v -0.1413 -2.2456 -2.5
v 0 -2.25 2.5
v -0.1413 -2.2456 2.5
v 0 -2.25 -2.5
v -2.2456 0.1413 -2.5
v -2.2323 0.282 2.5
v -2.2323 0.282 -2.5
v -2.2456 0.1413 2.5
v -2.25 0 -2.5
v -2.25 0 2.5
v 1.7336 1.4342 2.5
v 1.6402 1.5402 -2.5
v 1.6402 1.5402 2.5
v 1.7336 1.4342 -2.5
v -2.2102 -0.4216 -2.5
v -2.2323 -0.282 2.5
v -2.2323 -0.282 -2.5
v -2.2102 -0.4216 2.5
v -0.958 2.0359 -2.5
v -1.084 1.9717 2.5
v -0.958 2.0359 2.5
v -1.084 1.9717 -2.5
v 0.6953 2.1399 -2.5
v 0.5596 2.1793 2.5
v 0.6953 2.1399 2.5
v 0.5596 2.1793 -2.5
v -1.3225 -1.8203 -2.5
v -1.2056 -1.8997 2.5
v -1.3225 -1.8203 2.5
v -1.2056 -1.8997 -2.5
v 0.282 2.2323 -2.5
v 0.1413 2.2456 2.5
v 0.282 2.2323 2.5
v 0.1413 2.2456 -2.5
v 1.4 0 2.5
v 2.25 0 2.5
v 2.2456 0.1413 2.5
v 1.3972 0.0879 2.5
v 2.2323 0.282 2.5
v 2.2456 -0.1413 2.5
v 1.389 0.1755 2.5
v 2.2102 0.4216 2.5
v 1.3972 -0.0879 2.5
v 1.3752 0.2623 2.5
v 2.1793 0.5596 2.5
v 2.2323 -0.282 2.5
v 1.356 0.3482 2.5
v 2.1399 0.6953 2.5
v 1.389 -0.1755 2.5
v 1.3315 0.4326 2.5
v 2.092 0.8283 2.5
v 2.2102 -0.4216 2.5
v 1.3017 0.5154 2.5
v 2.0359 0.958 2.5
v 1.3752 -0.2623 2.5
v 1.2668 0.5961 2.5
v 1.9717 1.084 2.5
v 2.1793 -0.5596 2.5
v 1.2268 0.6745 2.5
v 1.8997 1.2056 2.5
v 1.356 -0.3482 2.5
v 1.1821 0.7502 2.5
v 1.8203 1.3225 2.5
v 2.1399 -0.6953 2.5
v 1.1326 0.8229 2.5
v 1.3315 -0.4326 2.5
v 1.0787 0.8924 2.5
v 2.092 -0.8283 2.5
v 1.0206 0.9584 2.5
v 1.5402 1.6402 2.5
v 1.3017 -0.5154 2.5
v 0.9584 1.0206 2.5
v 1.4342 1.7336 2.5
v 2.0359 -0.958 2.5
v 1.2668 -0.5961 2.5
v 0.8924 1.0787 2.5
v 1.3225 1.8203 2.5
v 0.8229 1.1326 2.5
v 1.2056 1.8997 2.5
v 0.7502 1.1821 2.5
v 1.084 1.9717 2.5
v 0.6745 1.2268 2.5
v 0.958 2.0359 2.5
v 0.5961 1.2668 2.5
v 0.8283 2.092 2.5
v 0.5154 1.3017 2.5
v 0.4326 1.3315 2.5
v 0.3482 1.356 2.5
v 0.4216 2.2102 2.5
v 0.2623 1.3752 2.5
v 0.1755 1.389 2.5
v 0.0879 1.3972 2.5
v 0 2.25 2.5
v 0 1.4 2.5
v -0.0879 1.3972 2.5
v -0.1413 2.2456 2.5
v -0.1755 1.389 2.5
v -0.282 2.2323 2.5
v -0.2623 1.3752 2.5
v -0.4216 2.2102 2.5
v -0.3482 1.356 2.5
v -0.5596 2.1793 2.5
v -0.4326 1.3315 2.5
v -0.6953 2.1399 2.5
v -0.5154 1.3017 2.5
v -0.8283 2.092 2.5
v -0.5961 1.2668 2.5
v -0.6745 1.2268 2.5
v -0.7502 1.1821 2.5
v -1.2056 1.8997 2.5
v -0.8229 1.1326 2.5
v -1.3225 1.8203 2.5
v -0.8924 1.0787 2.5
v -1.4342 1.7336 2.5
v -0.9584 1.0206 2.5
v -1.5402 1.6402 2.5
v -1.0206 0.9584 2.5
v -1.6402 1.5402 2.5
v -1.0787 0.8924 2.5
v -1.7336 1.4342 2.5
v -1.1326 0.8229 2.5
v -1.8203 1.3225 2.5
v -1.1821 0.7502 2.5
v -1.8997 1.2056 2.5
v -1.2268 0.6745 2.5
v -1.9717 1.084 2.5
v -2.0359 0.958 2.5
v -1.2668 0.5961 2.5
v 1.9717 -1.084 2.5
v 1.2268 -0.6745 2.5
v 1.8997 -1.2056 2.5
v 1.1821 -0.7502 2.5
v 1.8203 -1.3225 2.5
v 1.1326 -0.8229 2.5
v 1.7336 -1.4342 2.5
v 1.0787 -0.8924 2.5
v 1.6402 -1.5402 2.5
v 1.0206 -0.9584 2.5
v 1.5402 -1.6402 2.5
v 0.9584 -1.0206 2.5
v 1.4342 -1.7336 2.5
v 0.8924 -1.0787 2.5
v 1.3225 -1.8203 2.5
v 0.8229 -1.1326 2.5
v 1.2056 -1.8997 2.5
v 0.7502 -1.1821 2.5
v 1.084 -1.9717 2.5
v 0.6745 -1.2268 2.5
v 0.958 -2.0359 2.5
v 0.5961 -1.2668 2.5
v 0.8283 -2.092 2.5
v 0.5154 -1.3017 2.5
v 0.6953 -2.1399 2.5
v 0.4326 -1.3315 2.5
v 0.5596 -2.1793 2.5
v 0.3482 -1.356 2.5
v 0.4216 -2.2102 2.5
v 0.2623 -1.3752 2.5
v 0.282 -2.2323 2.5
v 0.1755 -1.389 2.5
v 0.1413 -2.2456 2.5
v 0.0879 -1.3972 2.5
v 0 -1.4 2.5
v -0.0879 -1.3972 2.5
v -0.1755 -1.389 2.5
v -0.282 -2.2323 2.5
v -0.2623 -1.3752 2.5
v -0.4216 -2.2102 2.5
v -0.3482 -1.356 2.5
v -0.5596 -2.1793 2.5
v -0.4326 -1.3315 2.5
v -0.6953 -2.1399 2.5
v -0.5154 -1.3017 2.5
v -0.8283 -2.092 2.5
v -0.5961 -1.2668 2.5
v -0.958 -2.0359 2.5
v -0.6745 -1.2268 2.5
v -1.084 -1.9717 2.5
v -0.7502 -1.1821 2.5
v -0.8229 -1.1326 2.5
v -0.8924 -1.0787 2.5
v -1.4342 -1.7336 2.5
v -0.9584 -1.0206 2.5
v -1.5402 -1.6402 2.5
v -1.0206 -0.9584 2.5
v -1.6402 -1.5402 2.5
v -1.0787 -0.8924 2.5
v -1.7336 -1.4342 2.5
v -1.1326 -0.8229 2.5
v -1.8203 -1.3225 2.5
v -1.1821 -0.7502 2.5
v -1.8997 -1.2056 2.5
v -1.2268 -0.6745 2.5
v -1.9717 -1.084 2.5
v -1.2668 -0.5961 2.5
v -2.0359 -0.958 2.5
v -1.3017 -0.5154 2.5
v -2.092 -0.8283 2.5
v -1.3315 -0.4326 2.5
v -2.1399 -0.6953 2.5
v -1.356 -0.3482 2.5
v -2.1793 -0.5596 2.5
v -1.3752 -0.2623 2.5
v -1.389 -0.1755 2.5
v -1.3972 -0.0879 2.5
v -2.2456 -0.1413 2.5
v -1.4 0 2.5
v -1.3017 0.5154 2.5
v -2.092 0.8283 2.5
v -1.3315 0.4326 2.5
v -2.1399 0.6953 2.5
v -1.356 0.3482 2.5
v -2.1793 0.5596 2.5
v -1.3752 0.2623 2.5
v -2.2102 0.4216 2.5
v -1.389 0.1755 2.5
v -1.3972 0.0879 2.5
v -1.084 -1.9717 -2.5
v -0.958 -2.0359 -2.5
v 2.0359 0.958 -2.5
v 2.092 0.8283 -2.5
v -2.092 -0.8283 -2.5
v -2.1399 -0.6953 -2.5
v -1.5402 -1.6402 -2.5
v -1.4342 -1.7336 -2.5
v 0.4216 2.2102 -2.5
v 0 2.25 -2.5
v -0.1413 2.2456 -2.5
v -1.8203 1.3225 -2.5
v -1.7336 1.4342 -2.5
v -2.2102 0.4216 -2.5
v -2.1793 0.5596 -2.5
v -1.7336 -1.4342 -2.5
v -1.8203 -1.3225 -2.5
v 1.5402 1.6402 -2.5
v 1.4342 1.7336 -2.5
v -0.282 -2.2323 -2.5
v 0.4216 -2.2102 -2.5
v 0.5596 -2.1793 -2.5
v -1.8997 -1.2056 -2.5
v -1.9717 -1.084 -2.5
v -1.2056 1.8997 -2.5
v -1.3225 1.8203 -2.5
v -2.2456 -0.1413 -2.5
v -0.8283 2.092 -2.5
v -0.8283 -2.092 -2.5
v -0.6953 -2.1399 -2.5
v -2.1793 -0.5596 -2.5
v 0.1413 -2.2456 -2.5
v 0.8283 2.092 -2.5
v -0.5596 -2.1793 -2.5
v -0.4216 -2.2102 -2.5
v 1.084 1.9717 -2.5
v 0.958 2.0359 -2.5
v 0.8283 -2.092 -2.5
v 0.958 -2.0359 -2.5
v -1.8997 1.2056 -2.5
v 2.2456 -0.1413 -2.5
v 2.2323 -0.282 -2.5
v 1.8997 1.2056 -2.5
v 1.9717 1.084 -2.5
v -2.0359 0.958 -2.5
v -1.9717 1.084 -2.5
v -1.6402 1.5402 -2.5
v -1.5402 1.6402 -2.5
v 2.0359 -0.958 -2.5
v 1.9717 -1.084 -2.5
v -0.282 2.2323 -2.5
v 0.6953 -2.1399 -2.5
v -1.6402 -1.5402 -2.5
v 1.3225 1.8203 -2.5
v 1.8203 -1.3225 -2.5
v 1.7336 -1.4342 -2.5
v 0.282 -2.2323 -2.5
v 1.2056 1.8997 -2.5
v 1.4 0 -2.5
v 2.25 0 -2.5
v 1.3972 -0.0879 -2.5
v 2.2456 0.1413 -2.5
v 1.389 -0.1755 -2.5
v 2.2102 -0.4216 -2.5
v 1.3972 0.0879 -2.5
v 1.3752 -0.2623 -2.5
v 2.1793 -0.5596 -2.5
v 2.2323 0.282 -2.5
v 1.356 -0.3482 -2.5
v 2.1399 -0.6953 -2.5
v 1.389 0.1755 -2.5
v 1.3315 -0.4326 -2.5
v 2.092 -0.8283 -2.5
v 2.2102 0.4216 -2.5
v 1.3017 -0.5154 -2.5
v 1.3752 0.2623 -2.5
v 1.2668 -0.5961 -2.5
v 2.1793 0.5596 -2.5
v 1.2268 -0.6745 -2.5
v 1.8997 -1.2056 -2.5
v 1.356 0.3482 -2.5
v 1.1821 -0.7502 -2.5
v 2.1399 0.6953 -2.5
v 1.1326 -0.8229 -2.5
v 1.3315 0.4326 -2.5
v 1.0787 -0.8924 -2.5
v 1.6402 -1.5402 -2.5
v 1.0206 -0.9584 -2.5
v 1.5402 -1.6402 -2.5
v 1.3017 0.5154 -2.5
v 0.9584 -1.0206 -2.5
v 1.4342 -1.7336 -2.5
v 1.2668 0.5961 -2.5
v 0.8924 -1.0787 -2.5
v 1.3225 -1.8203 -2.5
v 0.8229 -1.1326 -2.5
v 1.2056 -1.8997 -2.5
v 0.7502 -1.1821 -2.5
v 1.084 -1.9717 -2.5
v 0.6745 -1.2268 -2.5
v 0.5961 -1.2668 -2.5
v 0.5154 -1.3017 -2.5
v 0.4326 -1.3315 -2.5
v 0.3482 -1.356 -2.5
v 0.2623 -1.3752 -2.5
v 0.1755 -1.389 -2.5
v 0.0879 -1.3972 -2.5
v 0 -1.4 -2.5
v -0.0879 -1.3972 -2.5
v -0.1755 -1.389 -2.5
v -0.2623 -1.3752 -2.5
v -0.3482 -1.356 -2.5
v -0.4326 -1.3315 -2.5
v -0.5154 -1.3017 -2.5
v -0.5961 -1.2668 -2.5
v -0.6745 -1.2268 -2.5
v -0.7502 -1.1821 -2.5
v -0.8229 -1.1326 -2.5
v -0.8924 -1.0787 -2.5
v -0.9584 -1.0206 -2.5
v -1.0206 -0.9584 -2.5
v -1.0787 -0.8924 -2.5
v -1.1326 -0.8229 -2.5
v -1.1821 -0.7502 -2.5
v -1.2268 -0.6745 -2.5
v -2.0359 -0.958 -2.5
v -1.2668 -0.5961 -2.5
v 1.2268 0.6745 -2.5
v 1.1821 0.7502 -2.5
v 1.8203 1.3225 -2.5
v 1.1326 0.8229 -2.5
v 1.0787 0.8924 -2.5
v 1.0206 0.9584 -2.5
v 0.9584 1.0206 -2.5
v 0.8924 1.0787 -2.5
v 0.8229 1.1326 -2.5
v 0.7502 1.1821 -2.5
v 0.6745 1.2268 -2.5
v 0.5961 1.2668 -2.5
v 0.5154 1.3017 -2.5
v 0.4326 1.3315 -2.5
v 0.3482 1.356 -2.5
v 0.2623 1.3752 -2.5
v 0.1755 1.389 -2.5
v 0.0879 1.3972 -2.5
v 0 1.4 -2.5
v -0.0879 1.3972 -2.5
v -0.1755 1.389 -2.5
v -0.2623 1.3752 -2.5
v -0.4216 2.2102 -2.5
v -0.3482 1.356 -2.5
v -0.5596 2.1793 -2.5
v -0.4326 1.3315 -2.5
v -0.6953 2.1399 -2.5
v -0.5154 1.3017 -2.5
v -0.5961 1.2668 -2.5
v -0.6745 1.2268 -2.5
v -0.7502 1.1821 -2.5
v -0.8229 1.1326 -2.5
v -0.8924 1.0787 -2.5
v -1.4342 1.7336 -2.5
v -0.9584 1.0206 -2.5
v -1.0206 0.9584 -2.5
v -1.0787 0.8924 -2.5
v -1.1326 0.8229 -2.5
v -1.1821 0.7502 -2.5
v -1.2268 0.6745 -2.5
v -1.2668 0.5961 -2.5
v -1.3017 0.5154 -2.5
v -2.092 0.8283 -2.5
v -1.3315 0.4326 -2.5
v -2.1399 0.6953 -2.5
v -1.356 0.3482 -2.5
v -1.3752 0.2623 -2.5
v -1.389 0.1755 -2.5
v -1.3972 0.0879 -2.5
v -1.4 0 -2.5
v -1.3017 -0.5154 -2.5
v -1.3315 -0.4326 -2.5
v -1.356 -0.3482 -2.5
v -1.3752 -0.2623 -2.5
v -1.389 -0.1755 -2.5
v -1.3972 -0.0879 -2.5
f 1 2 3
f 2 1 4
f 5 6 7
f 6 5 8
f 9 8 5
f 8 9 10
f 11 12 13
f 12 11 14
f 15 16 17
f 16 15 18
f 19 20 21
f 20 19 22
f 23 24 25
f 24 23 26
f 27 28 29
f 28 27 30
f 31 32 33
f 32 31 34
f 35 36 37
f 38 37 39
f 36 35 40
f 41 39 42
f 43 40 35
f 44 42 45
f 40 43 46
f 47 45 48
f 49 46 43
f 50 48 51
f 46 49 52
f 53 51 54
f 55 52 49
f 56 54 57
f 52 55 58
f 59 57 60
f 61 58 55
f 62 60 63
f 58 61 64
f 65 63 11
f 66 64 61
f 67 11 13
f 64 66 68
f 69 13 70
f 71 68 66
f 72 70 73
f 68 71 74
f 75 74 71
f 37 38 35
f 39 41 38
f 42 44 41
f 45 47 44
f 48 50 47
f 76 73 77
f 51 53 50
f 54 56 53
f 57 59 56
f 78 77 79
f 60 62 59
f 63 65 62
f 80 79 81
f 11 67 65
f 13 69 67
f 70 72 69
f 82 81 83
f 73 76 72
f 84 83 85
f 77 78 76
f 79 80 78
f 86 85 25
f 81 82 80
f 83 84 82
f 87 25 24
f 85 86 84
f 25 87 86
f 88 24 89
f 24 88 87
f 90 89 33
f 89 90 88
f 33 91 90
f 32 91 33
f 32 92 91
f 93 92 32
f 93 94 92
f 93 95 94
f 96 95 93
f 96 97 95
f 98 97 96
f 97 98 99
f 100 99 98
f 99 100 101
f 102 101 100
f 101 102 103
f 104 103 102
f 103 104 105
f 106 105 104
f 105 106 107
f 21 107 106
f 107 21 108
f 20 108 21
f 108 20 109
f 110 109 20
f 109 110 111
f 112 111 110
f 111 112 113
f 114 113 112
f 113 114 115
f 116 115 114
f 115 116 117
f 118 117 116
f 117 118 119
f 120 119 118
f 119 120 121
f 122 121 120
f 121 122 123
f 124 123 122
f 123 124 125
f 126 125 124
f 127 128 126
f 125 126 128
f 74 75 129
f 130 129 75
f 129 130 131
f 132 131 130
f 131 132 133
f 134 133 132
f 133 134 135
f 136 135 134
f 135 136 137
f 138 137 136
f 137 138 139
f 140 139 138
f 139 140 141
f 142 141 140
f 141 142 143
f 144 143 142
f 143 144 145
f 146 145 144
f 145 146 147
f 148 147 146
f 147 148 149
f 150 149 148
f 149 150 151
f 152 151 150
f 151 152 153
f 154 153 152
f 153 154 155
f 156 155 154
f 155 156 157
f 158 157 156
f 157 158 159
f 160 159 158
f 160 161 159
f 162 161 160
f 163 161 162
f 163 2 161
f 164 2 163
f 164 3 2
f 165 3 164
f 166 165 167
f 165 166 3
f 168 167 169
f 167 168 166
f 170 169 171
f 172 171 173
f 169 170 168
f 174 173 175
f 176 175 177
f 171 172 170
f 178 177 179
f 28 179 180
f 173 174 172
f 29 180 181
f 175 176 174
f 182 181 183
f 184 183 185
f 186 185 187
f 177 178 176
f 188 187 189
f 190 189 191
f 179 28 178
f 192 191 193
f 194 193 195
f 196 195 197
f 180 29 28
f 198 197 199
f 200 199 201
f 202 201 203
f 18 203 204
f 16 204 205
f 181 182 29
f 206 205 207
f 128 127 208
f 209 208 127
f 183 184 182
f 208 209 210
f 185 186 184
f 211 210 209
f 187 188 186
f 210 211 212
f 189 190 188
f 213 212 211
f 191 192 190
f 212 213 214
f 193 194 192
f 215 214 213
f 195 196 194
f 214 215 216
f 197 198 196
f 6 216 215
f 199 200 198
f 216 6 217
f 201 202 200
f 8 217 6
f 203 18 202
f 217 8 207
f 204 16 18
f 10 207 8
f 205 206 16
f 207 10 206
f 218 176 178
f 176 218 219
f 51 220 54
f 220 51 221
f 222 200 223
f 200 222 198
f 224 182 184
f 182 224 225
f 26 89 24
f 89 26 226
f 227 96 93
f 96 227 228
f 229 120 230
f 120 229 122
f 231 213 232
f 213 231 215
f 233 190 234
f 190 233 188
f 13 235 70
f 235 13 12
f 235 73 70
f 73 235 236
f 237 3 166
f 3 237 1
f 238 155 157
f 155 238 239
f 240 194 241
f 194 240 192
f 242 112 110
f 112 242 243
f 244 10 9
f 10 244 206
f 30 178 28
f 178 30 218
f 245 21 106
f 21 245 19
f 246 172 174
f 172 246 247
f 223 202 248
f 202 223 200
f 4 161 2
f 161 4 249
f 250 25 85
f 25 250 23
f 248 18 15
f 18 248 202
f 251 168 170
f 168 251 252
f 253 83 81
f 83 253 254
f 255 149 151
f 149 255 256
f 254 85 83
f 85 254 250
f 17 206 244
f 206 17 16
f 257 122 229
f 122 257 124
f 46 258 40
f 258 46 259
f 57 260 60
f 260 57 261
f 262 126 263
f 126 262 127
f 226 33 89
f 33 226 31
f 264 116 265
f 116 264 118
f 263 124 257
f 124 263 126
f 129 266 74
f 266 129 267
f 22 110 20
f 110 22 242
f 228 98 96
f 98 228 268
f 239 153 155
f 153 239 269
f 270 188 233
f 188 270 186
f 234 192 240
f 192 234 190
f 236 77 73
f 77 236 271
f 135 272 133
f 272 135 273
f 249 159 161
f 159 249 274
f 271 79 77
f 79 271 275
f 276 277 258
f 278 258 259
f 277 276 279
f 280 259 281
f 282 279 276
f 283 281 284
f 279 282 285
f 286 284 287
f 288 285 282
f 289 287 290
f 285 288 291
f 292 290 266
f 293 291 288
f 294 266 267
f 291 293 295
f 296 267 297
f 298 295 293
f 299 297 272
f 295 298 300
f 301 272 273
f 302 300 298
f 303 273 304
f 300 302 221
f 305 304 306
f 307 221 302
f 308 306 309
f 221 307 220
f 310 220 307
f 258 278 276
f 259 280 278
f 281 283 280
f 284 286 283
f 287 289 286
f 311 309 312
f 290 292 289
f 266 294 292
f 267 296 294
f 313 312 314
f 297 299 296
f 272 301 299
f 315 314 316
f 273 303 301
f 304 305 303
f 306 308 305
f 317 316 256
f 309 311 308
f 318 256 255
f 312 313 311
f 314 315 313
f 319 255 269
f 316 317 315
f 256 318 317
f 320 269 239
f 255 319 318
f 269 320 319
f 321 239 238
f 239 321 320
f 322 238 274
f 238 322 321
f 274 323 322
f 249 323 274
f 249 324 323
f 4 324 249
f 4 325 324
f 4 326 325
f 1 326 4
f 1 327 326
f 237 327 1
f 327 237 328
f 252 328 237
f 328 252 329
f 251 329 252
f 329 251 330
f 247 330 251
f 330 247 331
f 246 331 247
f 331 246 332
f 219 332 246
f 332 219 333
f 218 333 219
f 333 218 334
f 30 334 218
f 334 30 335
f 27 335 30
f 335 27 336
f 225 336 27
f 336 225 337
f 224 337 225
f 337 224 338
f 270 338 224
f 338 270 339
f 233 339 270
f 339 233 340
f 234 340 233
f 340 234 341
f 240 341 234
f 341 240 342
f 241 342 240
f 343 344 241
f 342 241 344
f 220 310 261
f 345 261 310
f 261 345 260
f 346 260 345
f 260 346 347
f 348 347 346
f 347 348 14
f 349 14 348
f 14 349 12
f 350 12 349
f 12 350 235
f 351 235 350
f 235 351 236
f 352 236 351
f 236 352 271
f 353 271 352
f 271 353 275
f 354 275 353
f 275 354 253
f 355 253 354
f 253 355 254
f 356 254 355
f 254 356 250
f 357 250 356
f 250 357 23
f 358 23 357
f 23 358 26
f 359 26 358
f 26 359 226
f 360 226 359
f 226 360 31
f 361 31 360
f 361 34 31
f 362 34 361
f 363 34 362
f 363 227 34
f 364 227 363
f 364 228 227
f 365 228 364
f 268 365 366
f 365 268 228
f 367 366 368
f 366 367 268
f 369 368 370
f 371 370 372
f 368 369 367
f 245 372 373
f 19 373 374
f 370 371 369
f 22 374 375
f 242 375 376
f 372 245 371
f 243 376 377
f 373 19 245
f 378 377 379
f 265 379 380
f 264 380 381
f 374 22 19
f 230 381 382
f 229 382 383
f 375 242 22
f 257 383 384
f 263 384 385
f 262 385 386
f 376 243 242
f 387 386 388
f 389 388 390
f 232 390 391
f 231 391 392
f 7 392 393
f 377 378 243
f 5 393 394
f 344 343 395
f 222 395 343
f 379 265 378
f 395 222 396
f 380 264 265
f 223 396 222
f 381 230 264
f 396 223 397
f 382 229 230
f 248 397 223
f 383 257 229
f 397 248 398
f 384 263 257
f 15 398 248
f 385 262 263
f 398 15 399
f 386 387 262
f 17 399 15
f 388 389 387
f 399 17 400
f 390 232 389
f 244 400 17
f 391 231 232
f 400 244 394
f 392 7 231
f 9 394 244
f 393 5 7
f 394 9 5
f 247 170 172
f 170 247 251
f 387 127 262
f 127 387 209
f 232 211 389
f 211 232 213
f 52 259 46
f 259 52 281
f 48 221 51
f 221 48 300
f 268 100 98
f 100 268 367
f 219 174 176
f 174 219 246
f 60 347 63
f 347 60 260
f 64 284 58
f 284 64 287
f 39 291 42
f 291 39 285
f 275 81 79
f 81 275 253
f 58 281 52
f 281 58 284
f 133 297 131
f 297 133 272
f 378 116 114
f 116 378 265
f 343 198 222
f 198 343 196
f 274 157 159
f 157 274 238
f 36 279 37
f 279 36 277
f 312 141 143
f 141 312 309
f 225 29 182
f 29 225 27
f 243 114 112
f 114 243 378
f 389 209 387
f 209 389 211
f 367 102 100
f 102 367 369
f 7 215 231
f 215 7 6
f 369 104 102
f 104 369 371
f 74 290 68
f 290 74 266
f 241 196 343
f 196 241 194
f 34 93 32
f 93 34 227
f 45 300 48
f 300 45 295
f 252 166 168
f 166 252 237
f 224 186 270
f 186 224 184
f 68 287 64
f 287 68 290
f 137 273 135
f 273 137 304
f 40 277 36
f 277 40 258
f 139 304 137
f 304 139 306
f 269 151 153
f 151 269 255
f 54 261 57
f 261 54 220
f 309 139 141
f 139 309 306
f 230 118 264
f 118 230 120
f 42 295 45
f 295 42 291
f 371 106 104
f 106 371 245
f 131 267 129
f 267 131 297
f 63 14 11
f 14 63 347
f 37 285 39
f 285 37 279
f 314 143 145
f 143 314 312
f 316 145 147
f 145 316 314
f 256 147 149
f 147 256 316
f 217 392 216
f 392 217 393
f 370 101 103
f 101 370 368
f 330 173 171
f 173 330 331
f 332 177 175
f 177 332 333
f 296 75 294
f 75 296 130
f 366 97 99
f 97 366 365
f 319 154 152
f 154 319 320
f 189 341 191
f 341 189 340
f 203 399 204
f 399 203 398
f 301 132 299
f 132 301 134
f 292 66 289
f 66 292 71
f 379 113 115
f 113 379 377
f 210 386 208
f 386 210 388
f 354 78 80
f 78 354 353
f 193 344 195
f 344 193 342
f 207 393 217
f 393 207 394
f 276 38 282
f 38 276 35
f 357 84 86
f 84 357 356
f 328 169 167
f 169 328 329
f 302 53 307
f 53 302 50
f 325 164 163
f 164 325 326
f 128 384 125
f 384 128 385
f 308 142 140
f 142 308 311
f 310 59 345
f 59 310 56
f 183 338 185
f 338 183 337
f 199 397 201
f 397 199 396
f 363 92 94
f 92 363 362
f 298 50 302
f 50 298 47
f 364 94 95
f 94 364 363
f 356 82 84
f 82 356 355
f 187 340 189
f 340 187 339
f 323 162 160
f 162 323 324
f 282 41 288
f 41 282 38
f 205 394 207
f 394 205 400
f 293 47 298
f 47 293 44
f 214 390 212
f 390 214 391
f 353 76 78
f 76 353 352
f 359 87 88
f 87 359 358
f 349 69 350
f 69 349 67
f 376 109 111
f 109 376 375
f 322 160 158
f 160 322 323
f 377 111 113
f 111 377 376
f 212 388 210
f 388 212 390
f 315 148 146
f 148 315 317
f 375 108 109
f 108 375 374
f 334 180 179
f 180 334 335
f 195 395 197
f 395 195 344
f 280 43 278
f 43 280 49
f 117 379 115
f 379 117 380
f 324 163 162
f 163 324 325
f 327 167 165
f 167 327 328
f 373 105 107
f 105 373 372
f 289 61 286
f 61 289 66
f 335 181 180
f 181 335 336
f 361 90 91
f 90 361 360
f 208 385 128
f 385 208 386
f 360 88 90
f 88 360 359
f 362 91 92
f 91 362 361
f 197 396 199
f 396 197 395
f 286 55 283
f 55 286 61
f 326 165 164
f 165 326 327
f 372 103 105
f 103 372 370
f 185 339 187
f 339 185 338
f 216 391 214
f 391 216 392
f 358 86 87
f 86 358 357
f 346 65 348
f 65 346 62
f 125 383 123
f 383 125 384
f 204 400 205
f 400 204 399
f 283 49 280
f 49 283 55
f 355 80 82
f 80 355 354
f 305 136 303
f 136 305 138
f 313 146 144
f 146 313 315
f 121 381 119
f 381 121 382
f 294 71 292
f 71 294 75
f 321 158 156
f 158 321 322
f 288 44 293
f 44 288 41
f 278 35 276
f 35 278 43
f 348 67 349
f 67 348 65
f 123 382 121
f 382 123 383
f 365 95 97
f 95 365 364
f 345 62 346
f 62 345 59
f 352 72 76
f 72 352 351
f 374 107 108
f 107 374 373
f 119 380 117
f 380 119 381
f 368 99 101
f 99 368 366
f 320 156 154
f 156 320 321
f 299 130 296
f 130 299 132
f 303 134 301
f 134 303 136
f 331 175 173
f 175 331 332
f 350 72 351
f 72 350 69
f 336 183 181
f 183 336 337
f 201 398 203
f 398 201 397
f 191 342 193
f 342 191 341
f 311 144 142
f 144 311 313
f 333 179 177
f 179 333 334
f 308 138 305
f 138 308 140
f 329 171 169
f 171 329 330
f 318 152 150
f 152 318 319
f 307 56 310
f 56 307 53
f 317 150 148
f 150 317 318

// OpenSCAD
// 4x Spacers for mounting the kraken to the printable mount
include <../../shared_helper.scad>;
revision = 1.4;

// Dimensions
inner_rod_diameter = m3_loose_diameter;
outer_sleeve_diameter = 4.50;
sleeve_length = 5.00; //30.0;  // Adjust as needed // +1.5

// Tolerances
inner_tolerance = 0.00;
outer_tolerance = 0.00;

// Gap parameters for installation
gap_width = 0.0;  // Width of the gap to allow squeezing

generate_sleeve(outer_sleeve_diameter, outer_tolerance, sleeve_length, inner_rod_diameter, inner_tolerance, m3_hole_diameter, gap_width);
